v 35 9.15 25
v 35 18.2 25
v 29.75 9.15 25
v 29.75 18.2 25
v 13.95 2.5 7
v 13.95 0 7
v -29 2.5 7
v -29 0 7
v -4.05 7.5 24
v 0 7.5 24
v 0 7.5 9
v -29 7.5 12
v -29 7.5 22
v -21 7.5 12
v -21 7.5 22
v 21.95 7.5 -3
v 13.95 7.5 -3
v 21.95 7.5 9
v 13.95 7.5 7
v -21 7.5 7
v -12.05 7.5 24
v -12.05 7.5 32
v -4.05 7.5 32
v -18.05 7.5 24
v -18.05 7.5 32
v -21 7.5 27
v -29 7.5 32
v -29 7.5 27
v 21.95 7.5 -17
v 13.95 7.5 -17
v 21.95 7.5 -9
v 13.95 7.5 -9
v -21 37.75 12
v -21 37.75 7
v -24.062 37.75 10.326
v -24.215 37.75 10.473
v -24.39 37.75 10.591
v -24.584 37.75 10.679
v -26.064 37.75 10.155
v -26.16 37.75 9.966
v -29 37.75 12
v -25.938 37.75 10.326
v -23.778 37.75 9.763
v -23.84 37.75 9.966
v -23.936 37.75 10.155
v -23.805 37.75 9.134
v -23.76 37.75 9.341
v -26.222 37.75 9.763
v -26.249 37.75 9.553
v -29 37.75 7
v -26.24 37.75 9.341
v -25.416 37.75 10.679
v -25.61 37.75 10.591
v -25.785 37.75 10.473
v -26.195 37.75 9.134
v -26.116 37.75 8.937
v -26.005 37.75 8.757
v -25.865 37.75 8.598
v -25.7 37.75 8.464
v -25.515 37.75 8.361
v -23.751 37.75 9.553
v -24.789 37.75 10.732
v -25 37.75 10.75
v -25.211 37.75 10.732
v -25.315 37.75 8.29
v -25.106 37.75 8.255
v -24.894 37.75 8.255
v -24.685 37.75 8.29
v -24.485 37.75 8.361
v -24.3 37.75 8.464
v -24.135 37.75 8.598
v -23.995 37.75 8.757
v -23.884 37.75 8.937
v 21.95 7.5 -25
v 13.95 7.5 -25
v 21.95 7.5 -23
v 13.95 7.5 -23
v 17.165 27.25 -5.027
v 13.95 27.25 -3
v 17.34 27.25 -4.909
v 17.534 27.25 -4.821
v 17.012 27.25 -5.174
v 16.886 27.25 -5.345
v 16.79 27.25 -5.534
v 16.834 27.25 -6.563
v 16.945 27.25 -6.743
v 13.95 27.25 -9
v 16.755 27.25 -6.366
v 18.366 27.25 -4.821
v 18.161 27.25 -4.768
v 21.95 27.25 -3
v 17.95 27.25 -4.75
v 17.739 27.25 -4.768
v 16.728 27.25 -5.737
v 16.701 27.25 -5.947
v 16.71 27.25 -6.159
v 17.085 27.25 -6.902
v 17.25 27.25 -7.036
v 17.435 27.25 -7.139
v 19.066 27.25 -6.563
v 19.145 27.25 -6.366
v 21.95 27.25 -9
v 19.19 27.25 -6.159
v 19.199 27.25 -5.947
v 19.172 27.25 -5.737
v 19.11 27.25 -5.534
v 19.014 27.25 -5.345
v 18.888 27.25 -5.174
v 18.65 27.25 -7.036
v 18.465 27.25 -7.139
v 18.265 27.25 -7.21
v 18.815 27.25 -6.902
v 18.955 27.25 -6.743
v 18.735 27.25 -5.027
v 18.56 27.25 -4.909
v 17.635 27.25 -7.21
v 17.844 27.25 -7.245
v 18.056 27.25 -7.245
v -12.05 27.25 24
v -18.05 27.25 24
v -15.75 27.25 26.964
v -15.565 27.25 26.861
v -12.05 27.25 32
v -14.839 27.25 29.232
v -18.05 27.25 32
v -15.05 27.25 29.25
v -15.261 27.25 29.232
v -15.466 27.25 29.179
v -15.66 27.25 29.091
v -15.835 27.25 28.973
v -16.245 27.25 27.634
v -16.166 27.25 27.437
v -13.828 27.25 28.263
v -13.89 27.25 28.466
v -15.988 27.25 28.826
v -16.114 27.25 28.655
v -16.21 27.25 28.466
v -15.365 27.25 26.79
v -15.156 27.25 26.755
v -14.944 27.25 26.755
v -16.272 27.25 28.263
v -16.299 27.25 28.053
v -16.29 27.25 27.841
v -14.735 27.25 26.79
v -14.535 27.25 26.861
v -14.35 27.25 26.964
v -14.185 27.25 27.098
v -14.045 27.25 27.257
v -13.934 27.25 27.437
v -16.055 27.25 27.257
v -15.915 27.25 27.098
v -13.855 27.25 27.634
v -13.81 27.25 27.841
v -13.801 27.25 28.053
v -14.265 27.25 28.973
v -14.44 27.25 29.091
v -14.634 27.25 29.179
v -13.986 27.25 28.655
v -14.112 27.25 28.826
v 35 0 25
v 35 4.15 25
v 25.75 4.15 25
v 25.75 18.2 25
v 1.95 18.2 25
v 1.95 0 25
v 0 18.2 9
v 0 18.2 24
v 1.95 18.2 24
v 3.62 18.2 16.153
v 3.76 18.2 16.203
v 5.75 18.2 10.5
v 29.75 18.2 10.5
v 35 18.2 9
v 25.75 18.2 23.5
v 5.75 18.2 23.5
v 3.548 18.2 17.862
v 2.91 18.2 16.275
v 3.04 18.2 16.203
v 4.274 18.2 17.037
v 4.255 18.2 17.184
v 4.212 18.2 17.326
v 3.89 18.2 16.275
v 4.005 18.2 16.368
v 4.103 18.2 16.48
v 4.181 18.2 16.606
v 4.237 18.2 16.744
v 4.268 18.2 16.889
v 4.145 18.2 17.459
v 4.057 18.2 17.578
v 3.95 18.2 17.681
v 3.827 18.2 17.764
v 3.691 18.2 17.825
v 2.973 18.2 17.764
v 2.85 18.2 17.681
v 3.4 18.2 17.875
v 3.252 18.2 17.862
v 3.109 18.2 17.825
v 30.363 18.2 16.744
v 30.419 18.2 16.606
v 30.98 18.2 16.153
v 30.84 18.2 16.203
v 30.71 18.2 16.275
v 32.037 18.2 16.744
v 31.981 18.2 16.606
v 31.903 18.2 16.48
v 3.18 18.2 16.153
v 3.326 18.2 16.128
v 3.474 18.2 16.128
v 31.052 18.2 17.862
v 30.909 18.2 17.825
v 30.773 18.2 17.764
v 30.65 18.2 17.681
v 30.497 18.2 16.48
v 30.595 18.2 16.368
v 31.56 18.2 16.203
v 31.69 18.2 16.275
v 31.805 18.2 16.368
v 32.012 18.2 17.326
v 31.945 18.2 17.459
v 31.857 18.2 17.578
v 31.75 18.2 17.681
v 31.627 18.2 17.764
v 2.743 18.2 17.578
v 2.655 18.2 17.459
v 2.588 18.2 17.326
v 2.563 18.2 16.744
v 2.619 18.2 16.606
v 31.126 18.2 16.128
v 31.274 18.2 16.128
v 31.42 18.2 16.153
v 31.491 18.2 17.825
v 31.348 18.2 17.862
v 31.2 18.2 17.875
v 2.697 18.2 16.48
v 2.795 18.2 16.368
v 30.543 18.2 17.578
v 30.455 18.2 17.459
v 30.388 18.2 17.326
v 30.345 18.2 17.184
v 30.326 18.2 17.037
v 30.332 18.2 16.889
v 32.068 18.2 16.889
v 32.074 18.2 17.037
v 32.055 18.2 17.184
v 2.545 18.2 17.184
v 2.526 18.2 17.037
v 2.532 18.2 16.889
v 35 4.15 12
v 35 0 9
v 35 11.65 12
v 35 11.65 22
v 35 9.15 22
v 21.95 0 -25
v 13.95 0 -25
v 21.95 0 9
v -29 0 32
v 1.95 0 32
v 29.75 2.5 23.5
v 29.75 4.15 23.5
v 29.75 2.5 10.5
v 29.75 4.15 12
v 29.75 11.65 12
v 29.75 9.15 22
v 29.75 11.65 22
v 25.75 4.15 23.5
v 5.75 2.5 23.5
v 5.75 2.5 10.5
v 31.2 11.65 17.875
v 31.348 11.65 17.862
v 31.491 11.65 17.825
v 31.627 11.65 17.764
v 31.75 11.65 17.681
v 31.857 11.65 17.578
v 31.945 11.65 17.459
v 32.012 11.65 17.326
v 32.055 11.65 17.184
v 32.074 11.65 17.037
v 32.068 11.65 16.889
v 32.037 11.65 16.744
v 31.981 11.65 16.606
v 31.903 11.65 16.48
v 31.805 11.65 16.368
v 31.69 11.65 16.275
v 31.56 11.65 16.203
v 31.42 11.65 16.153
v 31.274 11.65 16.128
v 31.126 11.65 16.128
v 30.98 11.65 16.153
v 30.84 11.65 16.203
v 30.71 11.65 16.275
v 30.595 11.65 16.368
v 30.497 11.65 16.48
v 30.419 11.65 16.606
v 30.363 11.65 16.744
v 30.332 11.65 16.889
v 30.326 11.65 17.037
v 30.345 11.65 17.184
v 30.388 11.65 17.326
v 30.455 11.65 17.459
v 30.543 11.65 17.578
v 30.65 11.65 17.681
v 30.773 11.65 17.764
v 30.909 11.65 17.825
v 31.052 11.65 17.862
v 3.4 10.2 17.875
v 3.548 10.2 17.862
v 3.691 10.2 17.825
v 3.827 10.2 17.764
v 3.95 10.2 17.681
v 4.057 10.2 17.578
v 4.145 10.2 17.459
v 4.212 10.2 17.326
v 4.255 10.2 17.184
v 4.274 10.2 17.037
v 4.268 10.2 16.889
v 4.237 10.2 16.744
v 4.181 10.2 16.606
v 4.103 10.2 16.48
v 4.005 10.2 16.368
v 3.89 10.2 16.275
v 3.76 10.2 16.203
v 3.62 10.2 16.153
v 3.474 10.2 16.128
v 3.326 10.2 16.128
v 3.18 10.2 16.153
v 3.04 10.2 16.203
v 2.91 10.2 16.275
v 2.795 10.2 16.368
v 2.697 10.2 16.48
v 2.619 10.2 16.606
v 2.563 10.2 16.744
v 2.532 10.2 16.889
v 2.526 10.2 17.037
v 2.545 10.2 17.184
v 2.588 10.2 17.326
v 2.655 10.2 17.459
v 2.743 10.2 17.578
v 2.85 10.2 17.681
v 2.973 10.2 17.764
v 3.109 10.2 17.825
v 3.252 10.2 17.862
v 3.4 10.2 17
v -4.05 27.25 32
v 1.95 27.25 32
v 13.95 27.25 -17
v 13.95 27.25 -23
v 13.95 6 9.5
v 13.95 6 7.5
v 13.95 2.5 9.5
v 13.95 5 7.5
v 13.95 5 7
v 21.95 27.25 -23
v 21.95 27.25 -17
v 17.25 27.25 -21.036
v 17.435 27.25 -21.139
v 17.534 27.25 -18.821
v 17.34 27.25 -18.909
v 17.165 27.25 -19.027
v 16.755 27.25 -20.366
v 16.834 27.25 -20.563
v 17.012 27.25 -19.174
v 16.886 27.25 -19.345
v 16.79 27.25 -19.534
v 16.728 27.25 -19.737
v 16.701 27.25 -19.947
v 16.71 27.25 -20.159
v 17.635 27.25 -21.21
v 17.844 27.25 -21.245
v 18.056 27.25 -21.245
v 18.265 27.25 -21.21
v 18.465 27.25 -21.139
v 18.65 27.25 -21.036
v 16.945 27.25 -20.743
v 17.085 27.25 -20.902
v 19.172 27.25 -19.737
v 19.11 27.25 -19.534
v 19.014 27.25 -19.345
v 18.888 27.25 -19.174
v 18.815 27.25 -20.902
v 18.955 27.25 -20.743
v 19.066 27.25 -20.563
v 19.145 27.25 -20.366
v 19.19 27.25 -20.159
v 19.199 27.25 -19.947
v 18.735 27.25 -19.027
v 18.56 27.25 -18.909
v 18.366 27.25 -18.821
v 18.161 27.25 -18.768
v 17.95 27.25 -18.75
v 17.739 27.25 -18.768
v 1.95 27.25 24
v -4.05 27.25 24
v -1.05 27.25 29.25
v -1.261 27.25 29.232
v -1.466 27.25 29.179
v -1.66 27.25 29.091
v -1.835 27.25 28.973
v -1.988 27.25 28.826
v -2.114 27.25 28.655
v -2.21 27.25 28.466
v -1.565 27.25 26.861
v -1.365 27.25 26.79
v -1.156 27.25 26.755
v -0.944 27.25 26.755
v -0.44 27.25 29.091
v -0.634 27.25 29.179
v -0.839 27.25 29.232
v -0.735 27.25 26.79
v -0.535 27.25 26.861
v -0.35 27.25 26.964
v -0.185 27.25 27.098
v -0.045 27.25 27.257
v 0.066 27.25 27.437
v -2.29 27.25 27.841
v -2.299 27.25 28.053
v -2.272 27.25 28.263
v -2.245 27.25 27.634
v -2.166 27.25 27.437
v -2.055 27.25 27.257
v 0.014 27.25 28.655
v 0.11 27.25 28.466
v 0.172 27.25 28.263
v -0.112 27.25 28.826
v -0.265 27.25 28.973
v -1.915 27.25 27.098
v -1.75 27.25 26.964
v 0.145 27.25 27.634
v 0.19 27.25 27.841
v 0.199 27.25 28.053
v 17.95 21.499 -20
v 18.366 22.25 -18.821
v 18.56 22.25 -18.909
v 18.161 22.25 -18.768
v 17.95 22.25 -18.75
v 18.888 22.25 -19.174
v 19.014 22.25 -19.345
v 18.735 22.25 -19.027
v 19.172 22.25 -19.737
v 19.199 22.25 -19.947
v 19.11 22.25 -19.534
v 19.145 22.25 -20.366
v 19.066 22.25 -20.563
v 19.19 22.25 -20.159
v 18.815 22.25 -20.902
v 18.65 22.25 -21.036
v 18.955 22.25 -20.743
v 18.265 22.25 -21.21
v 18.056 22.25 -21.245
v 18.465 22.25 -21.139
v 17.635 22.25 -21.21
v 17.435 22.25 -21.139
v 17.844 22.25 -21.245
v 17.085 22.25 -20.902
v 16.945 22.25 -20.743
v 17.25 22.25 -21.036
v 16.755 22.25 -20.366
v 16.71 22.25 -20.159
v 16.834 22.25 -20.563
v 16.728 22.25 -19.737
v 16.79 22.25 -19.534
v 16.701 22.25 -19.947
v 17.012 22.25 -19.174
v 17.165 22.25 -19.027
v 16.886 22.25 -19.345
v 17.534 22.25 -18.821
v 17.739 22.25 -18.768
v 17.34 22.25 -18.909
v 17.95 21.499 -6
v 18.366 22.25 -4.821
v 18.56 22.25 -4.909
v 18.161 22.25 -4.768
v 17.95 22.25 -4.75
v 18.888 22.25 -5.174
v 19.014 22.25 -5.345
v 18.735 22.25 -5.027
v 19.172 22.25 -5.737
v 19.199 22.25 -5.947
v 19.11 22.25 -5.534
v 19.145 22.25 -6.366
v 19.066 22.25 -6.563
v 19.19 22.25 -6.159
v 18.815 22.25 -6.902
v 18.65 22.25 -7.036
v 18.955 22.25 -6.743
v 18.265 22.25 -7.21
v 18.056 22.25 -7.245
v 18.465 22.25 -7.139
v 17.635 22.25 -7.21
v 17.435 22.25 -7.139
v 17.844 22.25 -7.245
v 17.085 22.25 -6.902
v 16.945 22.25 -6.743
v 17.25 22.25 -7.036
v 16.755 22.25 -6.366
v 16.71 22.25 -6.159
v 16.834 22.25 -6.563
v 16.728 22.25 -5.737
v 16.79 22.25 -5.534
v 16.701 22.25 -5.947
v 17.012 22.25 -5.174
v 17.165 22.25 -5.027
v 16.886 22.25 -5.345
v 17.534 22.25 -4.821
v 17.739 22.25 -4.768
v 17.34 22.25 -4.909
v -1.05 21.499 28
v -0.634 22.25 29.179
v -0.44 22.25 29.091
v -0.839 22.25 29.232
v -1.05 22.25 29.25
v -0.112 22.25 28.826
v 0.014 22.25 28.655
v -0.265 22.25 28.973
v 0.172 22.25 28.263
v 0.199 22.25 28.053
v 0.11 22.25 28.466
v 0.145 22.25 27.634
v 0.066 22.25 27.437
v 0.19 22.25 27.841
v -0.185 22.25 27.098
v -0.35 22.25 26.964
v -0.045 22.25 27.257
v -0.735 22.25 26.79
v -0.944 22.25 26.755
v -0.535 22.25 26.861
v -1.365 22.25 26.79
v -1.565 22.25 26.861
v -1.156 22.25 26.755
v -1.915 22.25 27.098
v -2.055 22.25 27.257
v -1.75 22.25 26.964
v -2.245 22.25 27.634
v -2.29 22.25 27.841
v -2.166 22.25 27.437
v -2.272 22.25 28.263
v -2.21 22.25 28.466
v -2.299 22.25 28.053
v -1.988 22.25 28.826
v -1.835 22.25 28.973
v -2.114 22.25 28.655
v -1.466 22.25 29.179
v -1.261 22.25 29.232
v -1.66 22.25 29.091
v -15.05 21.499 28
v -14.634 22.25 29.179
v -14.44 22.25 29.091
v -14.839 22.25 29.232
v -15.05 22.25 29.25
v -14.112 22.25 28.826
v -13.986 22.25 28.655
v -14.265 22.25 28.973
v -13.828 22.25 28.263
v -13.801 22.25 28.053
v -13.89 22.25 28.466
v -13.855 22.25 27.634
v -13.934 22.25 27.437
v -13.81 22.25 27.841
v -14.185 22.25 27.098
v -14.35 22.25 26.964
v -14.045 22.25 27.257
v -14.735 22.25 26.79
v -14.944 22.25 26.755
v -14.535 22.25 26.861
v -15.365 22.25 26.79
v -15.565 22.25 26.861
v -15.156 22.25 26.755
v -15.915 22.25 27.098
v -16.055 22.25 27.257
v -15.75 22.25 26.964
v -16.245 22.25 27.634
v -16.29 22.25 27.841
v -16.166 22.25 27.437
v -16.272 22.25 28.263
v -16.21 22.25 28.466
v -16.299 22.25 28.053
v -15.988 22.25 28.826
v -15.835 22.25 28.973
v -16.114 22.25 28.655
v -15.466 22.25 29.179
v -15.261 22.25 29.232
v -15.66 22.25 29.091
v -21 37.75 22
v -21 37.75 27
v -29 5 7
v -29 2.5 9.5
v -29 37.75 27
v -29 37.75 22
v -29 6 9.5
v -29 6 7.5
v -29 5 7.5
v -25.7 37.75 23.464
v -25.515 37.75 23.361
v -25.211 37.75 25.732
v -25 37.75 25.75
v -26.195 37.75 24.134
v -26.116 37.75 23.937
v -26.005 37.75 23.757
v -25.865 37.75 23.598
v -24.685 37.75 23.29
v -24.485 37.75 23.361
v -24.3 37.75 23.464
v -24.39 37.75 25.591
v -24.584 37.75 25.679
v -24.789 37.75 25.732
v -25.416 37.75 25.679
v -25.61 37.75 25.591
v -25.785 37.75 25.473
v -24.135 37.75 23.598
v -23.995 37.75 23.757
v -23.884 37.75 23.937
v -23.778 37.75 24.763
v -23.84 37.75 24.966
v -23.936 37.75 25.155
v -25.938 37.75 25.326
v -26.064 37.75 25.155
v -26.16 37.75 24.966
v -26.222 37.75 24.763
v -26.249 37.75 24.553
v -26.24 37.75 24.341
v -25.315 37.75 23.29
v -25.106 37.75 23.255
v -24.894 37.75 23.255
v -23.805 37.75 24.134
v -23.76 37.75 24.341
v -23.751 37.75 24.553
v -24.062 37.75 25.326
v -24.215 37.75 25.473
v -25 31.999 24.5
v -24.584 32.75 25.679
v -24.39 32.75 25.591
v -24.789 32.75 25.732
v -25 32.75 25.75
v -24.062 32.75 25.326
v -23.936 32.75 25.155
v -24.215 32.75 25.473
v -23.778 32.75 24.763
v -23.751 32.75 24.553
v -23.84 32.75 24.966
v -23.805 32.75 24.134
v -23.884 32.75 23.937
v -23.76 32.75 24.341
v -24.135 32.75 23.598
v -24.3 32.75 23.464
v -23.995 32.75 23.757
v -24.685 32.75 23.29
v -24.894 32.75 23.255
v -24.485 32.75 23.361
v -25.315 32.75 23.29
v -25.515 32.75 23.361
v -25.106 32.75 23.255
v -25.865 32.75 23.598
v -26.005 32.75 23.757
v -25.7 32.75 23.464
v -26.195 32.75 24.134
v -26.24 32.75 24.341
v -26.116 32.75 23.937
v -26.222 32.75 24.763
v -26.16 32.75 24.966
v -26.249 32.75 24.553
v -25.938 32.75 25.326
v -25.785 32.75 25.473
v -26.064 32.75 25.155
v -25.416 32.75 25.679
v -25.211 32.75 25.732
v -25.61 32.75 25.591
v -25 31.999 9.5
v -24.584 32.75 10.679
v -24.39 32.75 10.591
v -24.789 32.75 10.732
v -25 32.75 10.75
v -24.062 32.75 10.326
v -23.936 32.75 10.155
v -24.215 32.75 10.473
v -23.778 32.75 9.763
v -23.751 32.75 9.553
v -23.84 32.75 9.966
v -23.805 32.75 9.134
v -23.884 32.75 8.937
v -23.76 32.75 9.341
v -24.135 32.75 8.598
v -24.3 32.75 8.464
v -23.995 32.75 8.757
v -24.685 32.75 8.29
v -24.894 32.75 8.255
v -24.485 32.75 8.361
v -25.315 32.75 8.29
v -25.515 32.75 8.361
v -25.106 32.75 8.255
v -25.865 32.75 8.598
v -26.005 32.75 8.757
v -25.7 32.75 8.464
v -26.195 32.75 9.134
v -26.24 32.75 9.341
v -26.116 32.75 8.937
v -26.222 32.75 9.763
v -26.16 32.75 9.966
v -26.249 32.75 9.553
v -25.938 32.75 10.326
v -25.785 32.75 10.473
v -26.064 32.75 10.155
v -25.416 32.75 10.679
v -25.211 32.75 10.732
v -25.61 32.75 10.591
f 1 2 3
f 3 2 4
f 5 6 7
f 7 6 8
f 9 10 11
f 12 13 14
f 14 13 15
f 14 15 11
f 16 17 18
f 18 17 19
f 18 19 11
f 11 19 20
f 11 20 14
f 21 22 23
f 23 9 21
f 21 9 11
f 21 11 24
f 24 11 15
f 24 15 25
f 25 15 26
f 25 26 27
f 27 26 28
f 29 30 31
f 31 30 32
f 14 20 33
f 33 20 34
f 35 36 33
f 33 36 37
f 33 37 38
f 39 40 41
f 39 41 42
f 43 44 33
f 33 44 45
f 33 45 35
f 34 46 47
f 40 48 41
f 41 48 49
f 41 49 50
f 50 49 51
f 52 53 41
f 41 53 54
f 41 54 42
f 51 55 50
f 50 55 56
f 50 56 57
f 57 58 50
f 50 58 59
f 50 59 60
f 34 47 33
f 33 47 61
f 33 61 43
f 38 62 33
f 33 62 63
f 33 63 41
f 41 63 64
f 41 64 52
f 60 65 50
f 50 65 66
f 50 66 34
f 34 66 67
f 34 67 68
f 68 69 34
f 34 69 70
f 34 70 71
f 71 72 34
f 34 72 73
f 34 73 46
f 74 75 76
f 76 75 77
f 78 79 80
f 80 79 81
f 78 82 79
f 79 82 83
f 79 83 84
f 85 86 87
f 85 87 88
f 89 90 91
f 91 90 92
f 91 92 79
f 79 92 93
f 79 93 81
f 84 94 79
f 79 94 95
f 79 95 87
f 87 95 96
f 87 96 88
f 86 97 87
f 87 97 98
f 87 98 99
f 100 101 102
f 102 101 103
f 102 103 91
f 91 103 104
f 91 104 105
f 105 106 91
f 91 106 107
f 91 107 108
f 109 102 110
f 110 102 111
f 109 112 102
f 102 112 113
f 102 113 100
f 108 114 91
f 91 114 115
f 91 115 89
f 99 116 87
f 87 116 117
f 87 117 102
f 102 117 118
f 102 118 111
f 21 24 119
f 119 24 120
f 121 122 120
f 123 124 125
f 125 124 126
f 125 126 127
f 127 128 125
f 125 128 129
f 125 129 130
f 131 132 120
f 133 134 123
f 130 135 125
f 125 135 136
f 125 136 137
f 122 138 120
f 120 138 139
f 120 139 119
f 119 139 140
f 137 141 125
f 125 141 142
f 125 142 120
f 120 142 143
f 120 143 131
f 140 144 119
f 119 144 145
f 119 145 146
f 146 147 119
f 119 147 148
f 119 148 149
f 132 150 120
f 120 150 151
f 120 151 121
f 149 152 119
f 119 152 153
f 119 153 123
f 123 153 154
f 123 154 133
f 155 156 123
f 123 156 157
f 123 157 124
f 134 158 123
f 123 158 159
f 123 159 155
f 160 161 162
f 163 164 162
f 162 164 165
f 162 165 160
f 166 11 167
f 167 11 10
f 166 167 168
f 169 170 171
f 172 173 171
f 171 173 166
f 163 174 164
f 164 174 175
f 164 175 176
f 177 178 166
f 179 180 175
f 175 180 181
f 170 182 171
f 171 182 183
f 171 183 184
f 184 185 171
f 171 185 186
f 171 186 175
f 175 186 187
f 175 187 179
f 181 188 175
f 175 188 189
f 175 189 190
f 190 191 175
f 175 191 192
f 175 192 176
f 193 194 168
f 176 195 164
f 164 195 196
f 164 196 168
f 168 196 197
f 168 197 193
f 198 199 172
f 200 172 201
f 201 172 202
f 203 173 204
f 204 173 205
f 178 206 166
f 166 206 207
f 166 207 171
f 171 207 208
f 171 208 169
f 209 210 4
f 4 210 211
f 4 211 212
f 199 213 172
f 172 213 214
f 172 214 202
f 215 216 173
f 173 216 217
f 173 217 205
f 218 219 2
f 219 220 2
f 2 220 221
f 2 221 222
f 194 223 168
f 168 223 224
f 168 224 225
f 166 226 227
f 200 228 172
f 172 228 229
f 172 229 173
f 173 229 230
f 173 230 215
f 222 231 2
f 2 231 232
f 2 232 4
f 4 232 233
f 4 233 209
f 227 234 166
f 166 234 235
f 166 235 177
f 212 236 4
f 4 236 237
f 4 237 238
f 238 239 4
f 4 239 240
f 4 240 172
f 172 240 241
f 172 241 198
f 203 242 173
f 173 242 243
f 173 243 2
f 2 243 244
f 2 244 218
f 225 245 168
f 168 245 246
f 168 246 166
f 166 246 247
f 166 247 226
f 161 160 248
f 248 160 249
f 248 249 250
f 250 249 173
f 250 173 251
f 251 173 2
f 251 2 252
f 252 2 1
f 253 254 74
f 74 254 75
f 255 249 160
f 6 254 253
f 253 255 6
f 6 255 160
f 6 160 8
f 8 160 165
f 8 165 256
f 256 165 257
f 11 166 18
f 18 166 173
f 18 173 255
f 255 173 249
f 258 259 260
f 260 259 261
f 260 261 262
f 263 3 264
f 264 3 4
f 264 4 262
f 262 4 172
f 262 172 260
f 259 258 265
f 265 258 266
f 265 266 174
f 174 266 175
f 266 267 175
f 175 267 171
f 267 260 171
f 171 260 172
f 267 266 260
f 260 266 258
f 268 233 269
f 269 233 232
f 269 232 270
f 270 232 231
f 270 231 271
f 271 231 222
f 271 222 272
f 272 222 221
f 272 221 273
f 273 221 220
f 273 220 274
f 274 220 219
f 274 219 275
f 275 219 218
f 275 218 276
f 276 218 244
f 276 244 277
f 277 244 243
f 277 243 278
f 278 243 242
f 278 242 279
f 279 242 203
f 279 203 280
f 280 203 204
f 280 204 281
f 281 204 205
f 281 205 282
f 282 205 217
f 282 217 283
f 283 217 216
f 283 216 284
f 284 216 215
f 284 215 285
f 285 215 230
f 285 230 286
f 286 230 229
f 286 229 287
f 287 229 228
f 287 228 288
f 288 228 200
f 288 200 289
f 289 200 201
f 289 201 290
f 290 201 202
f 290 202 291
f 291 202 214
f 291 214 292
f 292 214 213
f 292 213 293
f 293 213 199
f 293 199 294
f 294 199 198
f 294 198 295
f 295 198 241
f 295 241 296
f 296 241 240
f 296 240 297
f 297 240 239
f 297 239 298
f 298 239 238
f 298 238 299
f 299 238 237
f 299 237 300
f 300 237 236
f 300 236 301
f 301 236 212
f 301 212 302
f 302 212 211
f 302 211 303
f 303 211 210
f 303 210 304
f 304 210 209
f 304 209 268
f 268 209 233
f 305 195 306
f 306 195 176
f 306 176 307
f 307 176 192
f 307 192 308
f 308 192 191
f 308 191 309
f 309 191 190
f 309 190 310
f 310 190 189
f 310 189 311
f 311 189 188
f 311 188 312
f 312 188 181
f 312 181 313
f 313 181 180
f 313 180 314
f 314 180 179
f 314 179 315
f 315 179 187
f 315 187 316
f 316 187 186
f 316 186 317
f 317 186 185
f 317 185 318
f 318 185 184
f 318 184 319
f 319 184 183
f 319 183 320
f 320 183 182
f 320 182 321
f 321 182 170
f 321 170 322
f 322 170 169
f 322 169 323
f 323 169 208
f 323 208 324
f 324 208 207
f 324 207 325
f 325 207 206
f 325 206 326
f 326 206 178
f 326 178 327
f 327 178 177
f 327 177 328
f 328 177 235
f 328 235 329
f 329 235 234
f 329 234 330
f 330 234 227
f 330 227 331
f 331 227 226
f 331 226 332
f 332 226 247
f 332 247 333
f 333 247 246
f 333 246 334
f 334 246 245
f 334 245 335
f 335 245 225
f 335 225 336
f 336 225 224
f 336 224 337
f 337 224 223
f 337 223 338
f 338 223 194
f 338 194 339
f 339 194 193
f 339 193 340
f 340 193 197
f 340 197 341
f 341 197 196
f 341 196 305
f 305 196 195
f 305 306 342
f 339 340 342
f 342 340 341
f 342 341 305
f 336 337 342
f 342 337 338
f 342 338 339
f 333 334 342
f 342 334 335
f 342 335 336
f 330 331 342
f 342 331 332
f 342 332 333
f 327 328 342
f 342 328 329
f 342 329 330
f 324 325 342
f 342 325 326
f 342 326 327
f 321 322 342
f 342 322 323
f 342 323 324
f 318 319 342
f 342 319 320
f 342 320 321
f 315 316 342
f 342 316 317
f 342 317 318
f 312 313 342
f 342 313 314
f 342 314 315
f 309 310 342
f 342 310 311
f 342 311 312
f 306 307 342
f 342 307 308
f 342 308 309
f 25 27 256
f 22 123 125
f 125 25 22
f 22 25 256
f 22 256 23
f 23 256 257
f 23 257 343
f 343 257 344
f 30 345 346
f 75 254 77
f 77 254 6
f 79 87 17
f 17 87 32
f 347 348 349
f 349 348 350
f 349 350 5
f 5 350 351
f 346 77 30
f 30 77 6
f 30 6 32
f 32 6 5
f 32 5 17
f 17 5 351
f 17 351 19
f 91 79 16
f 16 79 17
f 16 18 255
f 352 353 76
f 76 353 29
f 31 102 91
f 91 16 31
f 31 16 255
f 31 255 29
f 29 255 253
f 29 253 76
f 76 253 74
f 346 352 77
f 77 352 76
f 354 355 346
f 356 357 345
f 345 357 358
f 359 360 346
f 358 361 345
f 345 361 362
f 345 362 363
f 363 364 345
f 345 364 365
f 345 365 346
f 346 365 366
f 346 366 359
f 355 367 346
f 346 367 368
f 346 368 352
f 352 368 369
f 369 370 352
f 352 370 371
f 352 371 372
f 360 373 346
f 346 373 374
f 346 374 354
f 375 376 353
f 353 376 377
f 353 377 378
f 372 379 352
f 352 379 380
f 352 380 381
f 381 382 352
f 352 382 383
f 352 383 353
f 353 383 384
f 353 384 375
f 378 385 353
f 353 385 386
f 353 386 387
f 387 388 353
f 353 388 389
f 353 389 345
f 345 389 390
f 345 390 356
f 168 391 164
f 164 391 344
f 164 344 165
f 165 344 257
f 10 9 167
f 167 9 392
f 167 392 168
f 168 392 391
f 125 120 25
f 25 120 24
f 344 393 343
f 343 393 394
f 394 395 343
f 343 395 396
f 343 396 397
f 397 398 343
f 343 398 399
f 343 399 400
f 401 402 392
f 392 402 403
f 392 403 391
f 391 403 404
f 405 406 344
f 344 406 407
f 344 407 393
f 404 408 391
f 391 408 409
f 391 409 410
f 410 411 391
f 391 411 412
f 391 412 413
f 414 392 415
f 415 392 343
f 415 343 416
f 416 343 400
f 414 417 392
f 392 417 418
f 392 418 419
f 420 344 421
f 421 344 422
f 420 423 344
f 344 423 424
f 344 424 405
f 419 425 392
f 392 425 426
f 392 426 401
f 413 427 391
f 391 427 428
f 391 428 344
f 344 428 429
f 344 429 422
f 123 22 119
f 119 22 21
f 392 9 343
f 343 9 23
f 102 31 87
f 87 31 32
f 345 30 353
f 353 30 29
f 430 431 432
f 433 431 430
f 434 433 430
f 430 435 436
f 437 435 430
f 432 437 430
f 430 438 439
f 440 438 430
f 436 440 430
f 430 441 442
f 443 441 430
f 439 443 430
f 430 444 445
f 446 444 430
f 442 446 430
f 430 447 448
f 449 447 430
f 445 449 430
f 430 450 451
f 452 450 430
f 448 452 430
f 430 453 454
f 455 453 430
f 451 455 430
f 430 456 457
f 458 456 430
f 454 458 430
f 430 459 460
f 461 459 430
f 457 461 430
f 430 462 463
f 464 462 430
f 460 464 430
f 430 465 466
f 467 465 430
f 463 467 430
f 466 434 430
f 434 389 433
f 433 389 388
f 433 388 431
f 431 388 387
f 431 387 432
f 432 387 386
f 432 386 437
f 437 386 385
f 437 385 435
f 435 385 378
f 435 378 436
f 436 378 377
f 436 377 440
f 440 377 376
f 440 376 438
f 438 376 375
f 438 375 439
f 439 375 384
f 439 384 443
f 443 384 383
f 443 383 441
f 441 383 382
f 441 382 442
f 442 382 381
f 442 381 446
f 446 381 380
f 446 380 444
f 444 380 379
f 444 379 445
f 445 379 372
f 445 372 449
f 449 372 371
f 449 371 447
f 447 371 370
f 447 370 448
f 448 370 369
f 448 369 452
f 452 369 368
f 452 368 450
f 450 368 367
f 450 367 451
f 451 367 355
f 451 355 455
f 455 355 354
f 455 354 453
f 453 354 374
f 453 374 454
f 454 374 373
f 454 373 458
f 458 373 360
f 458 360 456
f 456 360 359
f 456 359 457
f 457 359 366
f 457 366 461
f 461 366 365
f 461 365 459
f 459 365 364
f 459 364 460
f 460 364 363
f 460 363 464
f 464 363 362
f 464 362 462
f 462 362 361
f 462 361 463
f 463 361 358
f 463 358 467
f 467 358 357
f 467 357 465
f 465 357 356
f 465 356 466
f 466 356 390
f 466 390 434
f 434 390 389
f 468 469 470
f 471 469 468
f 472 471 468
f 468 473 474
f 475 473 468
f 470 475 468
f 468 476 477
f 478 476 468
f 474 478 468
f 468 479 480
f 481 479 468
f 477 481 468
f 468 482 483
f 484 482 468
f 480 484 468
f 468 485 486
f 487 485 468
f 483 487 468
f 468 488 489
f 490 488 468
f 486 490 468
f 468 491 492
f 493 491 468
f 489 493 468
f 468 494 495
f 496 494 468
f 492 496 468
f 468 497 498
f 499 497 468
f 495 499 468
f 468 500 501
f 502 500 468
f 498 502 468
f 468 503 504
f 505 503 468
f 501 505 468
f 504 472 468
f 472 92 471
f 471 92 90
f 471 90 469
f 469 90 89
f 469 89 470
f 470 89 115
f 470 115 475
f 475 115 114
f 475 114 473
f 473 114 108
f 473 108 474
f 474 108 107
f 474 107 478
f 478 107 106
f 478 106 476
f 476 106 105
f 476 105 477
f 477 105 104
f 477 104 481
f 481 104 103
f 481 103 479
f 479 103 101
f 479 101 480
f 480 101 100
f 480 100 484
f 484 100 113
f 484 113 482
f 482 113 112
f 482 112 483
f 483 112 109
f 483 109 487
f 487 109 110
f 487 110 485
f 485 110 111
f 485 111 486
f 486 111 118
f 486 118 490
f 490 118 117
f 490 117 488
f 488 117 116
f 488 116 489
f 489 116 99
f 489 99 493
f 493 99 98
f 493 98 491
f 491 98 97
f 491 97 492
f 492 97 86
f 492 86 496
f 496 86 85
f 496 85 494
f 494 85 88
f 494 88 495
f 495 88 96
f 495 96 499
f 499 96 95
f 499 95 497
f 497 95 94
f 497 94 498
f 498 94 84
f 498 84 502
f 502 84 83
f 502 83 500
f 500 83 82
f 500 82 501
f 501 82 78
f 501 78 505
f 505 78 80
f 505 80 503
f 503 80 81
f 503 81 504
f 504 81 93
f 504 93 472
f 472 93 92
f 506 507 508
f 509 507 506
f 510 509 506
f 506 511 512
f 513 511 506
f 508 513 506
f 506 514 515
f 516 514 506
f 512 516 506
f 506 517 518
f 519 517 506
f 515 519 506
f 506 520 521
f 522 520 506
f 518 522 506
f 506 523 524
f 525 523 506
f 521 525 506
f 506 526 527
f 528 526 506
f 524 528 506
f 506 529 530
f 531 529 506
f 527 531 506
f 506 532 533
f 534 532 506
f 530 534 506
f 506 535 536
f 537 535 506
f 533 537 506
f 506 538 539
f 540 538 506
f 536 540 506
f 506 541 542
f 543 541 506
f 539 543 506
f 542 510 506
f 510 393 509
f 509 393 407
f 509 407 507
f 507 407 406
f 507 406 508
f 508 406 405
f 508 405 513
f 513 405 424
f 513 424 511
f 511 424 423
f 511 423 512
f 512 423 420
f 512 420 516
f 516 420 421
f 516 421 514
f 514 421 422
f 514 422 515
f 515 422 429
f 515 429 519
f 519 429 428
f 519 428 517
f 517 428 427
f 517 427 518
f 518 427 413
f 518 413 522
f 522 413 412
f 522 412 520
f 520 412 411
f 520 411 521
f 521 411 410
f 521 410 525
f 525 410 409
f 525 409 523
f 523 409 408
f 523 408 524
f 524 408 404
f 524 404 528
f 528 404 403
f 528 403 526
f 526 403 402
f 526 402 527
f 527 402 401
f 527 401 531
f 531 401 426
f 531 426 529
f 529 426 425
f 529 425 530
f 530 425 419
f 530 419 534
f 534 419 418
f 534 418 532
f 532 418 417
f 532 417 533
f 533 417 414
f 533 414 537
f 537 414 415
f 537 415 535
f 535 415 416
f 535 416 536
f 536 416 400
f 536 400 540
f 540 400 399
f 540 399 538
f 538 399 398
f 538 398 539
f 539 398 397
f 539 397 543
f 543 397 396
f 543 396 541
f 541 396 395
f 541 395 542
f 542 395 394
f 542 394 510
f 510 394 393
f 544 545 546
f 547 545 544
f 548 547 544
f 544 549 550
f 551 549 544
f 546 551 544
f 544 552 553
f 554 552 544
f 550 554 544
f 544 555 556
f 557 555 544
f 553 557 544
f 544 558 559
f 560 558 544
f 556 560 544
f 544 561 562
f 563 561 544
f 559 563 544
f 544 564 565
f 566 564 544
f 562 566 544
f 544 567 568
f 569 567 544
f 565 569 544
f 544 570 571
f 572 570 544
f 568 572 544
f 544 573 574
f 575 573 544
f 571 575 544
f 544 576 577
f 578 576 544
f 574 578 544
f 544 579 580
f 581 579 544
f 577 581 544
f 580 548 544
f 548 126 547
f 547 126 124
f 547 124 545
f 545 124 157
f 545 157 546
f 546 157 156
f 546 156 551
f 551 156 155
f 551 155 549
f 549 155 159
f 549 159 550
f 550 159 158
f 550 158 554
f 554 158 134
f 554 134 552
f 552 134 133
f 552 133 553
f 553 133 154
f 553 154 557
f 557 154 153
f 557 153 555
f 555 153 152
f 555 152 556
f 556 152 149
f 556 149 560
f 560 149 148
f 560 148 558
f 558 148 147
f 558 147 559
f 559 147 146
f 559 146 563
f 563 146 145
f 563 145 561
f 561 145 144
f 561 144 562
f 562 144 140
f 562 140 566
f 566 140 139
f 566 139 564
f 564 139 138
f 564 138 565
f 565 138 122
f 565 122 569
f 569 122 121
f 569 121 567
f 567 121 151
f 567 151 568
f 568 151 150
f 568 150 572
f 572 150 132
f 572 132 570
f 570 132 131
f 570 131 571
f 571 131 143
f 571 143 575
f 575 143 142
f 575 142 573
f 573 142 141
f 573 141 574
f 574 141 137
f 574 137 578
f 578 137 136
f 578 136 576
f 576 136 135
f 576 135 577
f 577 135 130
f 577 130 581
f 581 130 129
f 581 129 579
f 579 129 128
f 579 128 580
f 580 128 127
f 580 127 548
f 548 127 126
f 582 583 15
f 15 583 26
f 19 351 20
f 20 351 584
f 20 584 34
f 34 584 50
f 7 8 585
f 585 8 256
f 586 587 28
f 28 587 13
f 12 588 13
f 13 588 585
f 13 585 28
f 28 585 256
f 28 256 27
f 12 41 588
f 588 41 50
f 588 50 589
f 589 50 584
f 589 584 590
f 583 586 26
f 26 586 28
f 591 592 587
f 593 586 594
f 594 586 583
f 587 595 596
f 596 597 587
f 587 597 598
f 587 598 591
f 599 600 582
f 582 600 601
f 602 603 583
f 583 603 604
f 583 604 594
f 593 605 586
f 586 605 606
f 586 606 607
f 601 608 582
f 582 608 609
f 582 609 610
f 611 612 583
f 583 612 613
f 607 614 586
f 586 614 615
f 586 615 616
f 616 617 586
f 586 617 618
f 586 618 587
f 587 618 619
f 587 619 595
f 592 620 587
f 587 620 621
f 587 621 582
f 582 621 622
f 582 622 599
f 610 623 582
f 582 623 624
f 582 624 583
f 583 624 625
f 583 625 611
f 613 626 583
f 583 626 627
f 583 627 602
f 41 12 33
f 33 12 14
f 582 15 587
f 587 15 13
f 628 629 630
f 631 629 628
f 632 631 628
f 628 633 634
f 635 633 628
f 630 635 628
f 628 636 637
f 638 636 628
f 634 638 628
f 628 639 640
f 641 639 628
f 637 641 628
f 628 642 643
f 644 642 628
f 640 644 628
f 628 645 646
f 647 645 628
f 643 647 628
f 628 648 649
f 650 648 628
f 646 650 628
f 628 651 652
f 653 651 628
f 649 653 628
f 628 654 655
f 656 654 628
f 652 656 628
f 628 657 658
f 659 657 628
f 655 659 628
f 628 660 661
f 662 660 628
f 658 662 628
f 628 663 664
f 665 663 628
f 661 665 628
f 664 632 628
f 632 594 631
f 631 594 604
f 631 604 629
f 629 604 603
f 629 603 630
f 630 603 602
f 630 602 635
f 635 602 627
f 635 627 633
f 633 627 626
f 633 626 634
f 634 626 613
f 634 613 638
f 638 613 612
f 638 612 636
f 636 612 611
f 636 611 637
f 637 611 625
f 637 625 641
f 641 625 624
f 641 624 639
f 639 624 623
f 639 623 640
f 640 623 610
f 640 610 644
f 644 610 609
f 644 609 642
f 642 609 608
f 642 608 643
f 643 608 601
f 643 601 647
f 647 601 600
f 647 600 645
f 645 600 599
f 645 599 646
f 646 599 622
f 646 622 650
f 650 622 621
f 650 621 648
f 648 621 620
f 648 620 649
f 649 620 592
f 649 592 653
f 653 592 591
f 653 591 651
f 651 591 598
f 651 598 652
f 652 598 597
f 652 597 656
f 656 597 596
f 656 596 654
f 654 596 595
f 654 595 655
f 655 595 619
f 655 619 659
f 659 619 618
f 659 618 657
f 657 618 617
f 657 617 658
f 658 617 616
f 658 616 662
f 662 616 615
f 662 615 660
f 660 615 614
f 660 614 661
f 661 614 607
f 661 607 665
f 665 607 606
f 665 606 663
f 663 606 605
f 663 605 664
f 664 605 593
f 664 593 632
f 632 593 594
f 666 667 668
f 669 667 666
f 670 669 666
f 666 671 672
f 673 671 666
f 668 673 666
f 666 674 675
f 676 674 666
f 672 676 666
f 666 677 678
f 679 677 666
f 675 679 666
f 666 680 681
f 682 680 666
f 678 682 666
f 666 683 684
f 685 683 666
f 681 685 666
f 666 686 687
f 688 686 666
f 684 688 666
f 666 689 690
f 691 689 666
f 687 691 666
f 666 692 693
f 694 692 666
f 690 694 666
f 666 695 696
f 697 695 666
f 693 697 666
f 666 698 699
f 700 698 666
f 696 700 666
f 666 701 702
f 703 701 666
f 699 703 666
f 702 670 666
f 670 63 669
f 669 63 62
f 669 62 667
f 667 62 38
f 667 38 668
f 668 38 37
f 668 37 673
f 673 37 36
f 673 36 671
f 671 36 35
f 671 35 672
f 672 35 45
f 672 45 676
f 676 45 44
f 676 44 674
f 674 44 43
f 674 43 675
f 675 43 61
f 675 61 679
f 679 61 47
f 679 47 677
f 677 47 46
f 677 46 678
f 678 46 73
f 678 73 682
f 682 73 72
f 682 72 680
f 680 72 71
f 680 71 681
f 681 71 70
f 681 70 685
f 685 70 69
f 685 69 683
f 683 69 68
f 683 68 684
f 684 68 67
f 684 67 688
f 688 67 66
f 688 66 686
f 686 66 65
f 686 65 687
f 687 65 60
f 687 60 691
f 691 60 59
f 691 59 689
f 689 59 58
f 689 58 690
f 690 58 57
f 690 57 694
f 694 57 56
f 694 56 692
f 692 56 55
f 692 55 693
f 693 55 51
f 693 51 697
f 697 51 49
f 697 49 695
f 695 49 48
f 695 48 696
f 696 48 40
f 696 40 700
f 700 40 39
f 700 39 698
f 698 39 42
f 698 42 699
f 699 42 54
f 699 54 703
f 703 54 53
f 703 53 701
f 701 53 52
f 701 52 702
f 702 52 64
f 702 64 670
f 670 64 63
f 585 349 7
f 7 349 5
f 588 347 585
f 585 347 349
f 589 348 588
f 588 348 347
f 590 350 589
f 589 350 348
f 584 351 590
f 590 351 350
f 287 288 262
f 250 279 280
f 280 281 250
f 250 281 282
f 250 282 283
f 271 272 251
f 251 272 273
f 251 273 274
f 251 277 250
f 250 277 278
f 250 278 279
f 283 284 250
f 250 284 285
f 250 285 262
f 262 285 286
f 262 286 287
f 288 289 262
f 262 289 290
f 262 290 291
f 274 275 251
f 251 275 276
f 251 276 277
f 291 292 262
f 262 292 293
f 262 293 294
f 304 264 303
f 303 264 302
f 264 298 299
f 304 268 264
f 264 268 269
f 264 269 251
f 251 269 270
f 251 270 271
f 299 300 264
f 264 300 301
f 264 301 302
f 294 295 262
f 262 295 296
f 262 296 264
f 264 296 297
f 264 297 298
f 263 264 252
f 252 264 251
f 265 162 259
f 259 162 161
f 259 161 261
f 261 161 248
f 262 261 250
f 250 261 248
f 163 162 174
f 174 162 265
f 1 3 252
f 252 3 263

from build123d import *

# Parameters (mm, degrees)
SKETCH1_W                       = 70
SKETCH1_H                       = 50
BOSS_EXTRUDE1_DEPTH             = 7.5
SKETCH2_W                       = 35
SKETCH2_H                       = 16
BOSS_EXTRUDE2_DEPTH             = 10.7
SKETCH3_W                       = 24
SKETCH3_H                       = 13
CUT_EXTRUDE1_DEPTH              = 15.7
SKETCH4_R                       = 0.875
CUT_EXTRUDE2_DEPTH              = 8
SKETCH9_W                       = 70
SKETCH9_H                       = 7.5
BOSS_EXTRUDE10_DEPTH            = 7
SKETCH10_W                      = 8
SKETCH10_H                      = 20
SKETCH10_W_2                    = 20
SKETCH10_H_2                    = 8
BOSS_EXTRUDE11_DEPTH            = 19.75
SKETCH14_W                      = 8
SKETCH14_H                      = 8
CUT_EXTRUDE4_DEPTH              = 19.75
TAP_DRILL_FOR_M3X0_5_TAP1_D     = 2.5
TAP_DRILL_FOR_M3X0_5_TAP1_DEPTH = 5
TAP_DRILL_FOR_M3X0_5_TAP1_TIP   = 0.751075774
SKETCH6_W                       = 8
SKETCH6_H                       = 20
BOSS_EXTRUDE8_DEPTH             = 30.25
SKETCH19_W                      = 8
SKETCH19_H                      = 10
CUT_EXTRUDE6_DEPTH              = 30.25
TAP_DRILL_FOR_M3X0_5_TAP3_D     = 2.5
TAP_DRILL_FOR_M3X0_5_TAP3_DEPTH = 5
TAP_DRILL_FOR_M3X0_5_TAP3_TIP   = 0.751075774
SKETCH22_W                      = 13.05
SKETCH22_H                      = 34
SKETCH22_W_2                    = 33.05
SKETCH22_H_2                    = 7
CUT_EXTRUDE7_DEPTH              = 7.5
CUT_EXTRUDE8_DEPTH              = 42.95
SKETCH25_W                      = 10
SKETCH25_H                      = 7.5
CUT_EXTRUDE9_DEPTH              = 5.25
SKETCH26_W                      = 4
SKETCH26_H                      = 14.05
CUT_EXTRUDE10_DEPTH             = 1.5
SKETCH27_W                      = 5.25
SKETCH27_H                      = 5
CUT_EXTRUDE11_DEPTH             = 3


with BuildPart() as part:
    # Sketch1 → Boss-Extrude1 (new body)
    with BuildSketch(Plane(origin=(0, 0, 0), x_dir=(1, 0, 0), z_dir=(0, 1, 0))):
        Rectangle(SKETCH1_W, SKETCH1_H)
    extrude(amount=BOSS_EXTRUDE1_DEPTH)

    # Sketch2 → Boss-Extrude2 (add)
    with BuildSketch(Plane(origin=(0, 7.5, 0), x_dir=(1, 0, 0), z_dir=(0, 1, 0))):
        with Locations((17.5, -17)):
            Rectangle(SKETCH2_W, SKETCH2_H)
    extrude(amount=BOSS_EXTRUDE2_DEPTH)

    # Sketch3 → Cut-Extrude1 (cut)
    with BuildSketch(Plane(origin=(0, 18.2, 0), x_dir=(1, 0, 0), z_dir=(0, 1, 0))):
        with Locations((17.75, -17)):
            Rectangle(SKETCH3_W, SKETCH3_H)
    extrude(amount=-CUT_EXTRUDE1_DEPTH, mode=Mode.SUBTRACT)

    # Sketch4 → Cut-Extrude2 (cut)
    with BuildSketch(Plane(origin=(0, 18.2, 0), x_dir=(1, 0, 0), z_dir=(0, 1, 0))):
        with Locations(Location((3.4, -17, 0), (0, 0, 270))):
            Circle(SKETCH4_R)
        with Locations(Location((31.2, -17, 0), (0, 0, 270))):
            Circle(SKETCH4_R)
    extrude(amount=-CUT_EXTRUDE2_DEPTH, mode=Mode.SUBTRACT)

    # Sketch9 → Boss-Extrude10 (add)
    with BuildSketch(Plane.XY.offset(25)):
        with Locations((0, 3.75)):
            Rectangle(SKETCH9_W, SKETCH9_H)
    extrude(amount=BOSS_EXTRUDE10_DEPTH)

    # Sketch10 → Boss-Extrude11 (add)
    with BuildSketch(Plane(origin=(0, 7.5, 0), x_dir=(1, 0, 0), z_dir=(0, 1, 0))):
        with Locations((17.95, 13)):
            Rectangle(SKETCH10_W, SKETCH10_H)
        with Locations((-8.05, -28)):
            Rectangle(SKETCH10_W_2, SKETCH10_H_2)
    extrude(amount=BOSS_EXTRUDE11_DEPTH)

    # Sketch14 → Cut-Extrude4 (cut)
    with BuildSketch(Plane(origin=(0, 27.25, 0), x_dir=(1, 0, 0), z_dir=(0, 1, 0))):
        with Locations((-8.05, -28)):
            Rectangle(SKETCH14_W, SKETCH14_H)
        with Locations((17.95, 13)):
            Rectangle(SKETCH14_W, SKETCH14_H)
    extrude(amount=-CUT_EXTRUDE4_DEPTH, mode=Mode.SUBTRACT)

    # Tap Drill for M3x0.5 Tap1
    with Locations(Plane(origin=(-15.05, 27.25, 28), x_dir=(0, 0, 1), z_dir=(0, 1, 0))):
        with Locations((0, 0), (0, 14), (-34, 33), (-48, 33)):
            Hole(TAP_DRILL_FOR_M3X0_5_TAP1_D / 2, depth=TAP_DRILL_FOR_M3X0_5_TAP1_DEPTH)
            with Locations((0, 0, -(TAP_DRILL_FOR_M3X0_5_TAP1_DEPTH + TAP_DRILL_FOR_M3X0_5_TAP1_TIP / 2))):  # 118° drill point
                Cone(0, TAP_DRILL_FOR_M3X0_5_TAP1_D / 2, TAP_DRILL_FOR_M3X0_5_TAP1_TIP, mode=Mode.SUBTRACT)

    # Sketch6 → Boss-Extrude8 (add)
    with BuildSketch(Plane(origin=(0, 7.5, 0), x_dir=(1, 0, 0), z_dir=(0, 1, 0))):
        with Locations((-25, -17)):
            Rectangle(SKETCH6_W, SKETCH6_H)
    extrude(amount=BOSS_EXTRUDE8_DEPTH)

    # Sketch19 → Cut-Extrude6 (cut)
    with BuildSketch(Plane(origin=(0, 37.75, 0), x_dir=(1, 0, 0), z_dir=(0, 1, 0))):
        with Locations((-25, -17)):
            Rectangle(SKETCH19_W, SKETCH19_H)
    extrude(amount=-CUT_EXTRUDE6_DEPTH, mode=Mode.SUBTRACT)

    # Tap Drill for M3x0.5 Tap3
    with Locations(Plane(origin=(-25, 37.75, 9.5), x_dir=(0, 0, 1), z_dir=(0, 1, 0))):
        with Locations((0, 0), (15, 0)):
            Hole(TAP_DRILL_FOR_M3X0_5_TAP3_D / 2, depth=TAP_DRILL_FOR_M3X0_5_TAP3_DEPTH)
            with Locations((0, 0, -(TAP_DRILL_FOR_M3X0_5_TAP3_DEPTH + TAP_DRILL_FOR_M3X0_5_TAP3_TIP / 2))):  # 118° drill point
                Cone(0, TAP_DRILL_FOR_M3X0_5_TAP3_D / 2, TAP_DRILL_FOR_M3X0_5_TAP3_TIP, mode=Mode.SUBTRACT)

    # Sketch22 → Cut-Extrude7 (cut)
    with BuildSketch(Plane(origin=(0, 7.5, 0), x_dir=(1, 0, 0), z_dir=(0, 1, 0))):
        Polygon((13.95, -7), (13.95, 25), (-35, 25), (-35, -32), (-29, -32), (-29, -7), align=None)
        with Locations((28.475, 8)):
            Rectangle(SKETCH22_W, SKETCH22_H)
        with Locations((18.475, -28.5)):
            Rectangle(SKETCH22_W_2, SKETCH22_H_2)
    extrude(amount=-CUT_EXTRUDE7_DEPTH, mode=Mode.SUBTRACT)

    # Sketch24 → Cut-Extrude8 (cut)
    with BuildSketch(Plane.ZY.offset(29)):
        Polygon((7, 2.5), (9.5, 2.5), (9.5, 6), (7.5, 6), (7.5, 5), (7, 5), align=None)
    extrude(amount=-CUT_EXTRUDE8_DEPTH, mode=Mode.SUBTRACT)

    # Sketch25 → Cut-Extrude9 (cut)
    with BuildSketch(Plane.ZY.offset(-29.75)):
        with Locations((17, 7.9)):
            Rectangle(SKETCH25_W, SKETCH25_H)
    extrude(amount=-CUT_EXTRUDE9_DEPTH, mode=Mode.SUBTRACT)

    # Sketch26 → Cut-Extrude10 (cut)
    with BuildSketch(Plane.XY.offset(25)):
        with Locations((27.75, 11.175)):
            Rectangle(SKETCH26_W, SKETCH26_H)
    extrude(amount=-CUT_EXTRUDE10_DEPTH, mode=Mode.SUBTRACT)

    # Sketch27 → Cut-Extrude11 (cut)
    with BuildSketch(Plane.XY.offset(25)):
        with Locations((32.375, 6.65)):
            Rectangle(SKETCH27_W, SKETCH27_H)
    extrude(amount=-CUT_EXTRUDE11_DEPTH, mode=Mode.SUBTRACT)


solid = part.part
